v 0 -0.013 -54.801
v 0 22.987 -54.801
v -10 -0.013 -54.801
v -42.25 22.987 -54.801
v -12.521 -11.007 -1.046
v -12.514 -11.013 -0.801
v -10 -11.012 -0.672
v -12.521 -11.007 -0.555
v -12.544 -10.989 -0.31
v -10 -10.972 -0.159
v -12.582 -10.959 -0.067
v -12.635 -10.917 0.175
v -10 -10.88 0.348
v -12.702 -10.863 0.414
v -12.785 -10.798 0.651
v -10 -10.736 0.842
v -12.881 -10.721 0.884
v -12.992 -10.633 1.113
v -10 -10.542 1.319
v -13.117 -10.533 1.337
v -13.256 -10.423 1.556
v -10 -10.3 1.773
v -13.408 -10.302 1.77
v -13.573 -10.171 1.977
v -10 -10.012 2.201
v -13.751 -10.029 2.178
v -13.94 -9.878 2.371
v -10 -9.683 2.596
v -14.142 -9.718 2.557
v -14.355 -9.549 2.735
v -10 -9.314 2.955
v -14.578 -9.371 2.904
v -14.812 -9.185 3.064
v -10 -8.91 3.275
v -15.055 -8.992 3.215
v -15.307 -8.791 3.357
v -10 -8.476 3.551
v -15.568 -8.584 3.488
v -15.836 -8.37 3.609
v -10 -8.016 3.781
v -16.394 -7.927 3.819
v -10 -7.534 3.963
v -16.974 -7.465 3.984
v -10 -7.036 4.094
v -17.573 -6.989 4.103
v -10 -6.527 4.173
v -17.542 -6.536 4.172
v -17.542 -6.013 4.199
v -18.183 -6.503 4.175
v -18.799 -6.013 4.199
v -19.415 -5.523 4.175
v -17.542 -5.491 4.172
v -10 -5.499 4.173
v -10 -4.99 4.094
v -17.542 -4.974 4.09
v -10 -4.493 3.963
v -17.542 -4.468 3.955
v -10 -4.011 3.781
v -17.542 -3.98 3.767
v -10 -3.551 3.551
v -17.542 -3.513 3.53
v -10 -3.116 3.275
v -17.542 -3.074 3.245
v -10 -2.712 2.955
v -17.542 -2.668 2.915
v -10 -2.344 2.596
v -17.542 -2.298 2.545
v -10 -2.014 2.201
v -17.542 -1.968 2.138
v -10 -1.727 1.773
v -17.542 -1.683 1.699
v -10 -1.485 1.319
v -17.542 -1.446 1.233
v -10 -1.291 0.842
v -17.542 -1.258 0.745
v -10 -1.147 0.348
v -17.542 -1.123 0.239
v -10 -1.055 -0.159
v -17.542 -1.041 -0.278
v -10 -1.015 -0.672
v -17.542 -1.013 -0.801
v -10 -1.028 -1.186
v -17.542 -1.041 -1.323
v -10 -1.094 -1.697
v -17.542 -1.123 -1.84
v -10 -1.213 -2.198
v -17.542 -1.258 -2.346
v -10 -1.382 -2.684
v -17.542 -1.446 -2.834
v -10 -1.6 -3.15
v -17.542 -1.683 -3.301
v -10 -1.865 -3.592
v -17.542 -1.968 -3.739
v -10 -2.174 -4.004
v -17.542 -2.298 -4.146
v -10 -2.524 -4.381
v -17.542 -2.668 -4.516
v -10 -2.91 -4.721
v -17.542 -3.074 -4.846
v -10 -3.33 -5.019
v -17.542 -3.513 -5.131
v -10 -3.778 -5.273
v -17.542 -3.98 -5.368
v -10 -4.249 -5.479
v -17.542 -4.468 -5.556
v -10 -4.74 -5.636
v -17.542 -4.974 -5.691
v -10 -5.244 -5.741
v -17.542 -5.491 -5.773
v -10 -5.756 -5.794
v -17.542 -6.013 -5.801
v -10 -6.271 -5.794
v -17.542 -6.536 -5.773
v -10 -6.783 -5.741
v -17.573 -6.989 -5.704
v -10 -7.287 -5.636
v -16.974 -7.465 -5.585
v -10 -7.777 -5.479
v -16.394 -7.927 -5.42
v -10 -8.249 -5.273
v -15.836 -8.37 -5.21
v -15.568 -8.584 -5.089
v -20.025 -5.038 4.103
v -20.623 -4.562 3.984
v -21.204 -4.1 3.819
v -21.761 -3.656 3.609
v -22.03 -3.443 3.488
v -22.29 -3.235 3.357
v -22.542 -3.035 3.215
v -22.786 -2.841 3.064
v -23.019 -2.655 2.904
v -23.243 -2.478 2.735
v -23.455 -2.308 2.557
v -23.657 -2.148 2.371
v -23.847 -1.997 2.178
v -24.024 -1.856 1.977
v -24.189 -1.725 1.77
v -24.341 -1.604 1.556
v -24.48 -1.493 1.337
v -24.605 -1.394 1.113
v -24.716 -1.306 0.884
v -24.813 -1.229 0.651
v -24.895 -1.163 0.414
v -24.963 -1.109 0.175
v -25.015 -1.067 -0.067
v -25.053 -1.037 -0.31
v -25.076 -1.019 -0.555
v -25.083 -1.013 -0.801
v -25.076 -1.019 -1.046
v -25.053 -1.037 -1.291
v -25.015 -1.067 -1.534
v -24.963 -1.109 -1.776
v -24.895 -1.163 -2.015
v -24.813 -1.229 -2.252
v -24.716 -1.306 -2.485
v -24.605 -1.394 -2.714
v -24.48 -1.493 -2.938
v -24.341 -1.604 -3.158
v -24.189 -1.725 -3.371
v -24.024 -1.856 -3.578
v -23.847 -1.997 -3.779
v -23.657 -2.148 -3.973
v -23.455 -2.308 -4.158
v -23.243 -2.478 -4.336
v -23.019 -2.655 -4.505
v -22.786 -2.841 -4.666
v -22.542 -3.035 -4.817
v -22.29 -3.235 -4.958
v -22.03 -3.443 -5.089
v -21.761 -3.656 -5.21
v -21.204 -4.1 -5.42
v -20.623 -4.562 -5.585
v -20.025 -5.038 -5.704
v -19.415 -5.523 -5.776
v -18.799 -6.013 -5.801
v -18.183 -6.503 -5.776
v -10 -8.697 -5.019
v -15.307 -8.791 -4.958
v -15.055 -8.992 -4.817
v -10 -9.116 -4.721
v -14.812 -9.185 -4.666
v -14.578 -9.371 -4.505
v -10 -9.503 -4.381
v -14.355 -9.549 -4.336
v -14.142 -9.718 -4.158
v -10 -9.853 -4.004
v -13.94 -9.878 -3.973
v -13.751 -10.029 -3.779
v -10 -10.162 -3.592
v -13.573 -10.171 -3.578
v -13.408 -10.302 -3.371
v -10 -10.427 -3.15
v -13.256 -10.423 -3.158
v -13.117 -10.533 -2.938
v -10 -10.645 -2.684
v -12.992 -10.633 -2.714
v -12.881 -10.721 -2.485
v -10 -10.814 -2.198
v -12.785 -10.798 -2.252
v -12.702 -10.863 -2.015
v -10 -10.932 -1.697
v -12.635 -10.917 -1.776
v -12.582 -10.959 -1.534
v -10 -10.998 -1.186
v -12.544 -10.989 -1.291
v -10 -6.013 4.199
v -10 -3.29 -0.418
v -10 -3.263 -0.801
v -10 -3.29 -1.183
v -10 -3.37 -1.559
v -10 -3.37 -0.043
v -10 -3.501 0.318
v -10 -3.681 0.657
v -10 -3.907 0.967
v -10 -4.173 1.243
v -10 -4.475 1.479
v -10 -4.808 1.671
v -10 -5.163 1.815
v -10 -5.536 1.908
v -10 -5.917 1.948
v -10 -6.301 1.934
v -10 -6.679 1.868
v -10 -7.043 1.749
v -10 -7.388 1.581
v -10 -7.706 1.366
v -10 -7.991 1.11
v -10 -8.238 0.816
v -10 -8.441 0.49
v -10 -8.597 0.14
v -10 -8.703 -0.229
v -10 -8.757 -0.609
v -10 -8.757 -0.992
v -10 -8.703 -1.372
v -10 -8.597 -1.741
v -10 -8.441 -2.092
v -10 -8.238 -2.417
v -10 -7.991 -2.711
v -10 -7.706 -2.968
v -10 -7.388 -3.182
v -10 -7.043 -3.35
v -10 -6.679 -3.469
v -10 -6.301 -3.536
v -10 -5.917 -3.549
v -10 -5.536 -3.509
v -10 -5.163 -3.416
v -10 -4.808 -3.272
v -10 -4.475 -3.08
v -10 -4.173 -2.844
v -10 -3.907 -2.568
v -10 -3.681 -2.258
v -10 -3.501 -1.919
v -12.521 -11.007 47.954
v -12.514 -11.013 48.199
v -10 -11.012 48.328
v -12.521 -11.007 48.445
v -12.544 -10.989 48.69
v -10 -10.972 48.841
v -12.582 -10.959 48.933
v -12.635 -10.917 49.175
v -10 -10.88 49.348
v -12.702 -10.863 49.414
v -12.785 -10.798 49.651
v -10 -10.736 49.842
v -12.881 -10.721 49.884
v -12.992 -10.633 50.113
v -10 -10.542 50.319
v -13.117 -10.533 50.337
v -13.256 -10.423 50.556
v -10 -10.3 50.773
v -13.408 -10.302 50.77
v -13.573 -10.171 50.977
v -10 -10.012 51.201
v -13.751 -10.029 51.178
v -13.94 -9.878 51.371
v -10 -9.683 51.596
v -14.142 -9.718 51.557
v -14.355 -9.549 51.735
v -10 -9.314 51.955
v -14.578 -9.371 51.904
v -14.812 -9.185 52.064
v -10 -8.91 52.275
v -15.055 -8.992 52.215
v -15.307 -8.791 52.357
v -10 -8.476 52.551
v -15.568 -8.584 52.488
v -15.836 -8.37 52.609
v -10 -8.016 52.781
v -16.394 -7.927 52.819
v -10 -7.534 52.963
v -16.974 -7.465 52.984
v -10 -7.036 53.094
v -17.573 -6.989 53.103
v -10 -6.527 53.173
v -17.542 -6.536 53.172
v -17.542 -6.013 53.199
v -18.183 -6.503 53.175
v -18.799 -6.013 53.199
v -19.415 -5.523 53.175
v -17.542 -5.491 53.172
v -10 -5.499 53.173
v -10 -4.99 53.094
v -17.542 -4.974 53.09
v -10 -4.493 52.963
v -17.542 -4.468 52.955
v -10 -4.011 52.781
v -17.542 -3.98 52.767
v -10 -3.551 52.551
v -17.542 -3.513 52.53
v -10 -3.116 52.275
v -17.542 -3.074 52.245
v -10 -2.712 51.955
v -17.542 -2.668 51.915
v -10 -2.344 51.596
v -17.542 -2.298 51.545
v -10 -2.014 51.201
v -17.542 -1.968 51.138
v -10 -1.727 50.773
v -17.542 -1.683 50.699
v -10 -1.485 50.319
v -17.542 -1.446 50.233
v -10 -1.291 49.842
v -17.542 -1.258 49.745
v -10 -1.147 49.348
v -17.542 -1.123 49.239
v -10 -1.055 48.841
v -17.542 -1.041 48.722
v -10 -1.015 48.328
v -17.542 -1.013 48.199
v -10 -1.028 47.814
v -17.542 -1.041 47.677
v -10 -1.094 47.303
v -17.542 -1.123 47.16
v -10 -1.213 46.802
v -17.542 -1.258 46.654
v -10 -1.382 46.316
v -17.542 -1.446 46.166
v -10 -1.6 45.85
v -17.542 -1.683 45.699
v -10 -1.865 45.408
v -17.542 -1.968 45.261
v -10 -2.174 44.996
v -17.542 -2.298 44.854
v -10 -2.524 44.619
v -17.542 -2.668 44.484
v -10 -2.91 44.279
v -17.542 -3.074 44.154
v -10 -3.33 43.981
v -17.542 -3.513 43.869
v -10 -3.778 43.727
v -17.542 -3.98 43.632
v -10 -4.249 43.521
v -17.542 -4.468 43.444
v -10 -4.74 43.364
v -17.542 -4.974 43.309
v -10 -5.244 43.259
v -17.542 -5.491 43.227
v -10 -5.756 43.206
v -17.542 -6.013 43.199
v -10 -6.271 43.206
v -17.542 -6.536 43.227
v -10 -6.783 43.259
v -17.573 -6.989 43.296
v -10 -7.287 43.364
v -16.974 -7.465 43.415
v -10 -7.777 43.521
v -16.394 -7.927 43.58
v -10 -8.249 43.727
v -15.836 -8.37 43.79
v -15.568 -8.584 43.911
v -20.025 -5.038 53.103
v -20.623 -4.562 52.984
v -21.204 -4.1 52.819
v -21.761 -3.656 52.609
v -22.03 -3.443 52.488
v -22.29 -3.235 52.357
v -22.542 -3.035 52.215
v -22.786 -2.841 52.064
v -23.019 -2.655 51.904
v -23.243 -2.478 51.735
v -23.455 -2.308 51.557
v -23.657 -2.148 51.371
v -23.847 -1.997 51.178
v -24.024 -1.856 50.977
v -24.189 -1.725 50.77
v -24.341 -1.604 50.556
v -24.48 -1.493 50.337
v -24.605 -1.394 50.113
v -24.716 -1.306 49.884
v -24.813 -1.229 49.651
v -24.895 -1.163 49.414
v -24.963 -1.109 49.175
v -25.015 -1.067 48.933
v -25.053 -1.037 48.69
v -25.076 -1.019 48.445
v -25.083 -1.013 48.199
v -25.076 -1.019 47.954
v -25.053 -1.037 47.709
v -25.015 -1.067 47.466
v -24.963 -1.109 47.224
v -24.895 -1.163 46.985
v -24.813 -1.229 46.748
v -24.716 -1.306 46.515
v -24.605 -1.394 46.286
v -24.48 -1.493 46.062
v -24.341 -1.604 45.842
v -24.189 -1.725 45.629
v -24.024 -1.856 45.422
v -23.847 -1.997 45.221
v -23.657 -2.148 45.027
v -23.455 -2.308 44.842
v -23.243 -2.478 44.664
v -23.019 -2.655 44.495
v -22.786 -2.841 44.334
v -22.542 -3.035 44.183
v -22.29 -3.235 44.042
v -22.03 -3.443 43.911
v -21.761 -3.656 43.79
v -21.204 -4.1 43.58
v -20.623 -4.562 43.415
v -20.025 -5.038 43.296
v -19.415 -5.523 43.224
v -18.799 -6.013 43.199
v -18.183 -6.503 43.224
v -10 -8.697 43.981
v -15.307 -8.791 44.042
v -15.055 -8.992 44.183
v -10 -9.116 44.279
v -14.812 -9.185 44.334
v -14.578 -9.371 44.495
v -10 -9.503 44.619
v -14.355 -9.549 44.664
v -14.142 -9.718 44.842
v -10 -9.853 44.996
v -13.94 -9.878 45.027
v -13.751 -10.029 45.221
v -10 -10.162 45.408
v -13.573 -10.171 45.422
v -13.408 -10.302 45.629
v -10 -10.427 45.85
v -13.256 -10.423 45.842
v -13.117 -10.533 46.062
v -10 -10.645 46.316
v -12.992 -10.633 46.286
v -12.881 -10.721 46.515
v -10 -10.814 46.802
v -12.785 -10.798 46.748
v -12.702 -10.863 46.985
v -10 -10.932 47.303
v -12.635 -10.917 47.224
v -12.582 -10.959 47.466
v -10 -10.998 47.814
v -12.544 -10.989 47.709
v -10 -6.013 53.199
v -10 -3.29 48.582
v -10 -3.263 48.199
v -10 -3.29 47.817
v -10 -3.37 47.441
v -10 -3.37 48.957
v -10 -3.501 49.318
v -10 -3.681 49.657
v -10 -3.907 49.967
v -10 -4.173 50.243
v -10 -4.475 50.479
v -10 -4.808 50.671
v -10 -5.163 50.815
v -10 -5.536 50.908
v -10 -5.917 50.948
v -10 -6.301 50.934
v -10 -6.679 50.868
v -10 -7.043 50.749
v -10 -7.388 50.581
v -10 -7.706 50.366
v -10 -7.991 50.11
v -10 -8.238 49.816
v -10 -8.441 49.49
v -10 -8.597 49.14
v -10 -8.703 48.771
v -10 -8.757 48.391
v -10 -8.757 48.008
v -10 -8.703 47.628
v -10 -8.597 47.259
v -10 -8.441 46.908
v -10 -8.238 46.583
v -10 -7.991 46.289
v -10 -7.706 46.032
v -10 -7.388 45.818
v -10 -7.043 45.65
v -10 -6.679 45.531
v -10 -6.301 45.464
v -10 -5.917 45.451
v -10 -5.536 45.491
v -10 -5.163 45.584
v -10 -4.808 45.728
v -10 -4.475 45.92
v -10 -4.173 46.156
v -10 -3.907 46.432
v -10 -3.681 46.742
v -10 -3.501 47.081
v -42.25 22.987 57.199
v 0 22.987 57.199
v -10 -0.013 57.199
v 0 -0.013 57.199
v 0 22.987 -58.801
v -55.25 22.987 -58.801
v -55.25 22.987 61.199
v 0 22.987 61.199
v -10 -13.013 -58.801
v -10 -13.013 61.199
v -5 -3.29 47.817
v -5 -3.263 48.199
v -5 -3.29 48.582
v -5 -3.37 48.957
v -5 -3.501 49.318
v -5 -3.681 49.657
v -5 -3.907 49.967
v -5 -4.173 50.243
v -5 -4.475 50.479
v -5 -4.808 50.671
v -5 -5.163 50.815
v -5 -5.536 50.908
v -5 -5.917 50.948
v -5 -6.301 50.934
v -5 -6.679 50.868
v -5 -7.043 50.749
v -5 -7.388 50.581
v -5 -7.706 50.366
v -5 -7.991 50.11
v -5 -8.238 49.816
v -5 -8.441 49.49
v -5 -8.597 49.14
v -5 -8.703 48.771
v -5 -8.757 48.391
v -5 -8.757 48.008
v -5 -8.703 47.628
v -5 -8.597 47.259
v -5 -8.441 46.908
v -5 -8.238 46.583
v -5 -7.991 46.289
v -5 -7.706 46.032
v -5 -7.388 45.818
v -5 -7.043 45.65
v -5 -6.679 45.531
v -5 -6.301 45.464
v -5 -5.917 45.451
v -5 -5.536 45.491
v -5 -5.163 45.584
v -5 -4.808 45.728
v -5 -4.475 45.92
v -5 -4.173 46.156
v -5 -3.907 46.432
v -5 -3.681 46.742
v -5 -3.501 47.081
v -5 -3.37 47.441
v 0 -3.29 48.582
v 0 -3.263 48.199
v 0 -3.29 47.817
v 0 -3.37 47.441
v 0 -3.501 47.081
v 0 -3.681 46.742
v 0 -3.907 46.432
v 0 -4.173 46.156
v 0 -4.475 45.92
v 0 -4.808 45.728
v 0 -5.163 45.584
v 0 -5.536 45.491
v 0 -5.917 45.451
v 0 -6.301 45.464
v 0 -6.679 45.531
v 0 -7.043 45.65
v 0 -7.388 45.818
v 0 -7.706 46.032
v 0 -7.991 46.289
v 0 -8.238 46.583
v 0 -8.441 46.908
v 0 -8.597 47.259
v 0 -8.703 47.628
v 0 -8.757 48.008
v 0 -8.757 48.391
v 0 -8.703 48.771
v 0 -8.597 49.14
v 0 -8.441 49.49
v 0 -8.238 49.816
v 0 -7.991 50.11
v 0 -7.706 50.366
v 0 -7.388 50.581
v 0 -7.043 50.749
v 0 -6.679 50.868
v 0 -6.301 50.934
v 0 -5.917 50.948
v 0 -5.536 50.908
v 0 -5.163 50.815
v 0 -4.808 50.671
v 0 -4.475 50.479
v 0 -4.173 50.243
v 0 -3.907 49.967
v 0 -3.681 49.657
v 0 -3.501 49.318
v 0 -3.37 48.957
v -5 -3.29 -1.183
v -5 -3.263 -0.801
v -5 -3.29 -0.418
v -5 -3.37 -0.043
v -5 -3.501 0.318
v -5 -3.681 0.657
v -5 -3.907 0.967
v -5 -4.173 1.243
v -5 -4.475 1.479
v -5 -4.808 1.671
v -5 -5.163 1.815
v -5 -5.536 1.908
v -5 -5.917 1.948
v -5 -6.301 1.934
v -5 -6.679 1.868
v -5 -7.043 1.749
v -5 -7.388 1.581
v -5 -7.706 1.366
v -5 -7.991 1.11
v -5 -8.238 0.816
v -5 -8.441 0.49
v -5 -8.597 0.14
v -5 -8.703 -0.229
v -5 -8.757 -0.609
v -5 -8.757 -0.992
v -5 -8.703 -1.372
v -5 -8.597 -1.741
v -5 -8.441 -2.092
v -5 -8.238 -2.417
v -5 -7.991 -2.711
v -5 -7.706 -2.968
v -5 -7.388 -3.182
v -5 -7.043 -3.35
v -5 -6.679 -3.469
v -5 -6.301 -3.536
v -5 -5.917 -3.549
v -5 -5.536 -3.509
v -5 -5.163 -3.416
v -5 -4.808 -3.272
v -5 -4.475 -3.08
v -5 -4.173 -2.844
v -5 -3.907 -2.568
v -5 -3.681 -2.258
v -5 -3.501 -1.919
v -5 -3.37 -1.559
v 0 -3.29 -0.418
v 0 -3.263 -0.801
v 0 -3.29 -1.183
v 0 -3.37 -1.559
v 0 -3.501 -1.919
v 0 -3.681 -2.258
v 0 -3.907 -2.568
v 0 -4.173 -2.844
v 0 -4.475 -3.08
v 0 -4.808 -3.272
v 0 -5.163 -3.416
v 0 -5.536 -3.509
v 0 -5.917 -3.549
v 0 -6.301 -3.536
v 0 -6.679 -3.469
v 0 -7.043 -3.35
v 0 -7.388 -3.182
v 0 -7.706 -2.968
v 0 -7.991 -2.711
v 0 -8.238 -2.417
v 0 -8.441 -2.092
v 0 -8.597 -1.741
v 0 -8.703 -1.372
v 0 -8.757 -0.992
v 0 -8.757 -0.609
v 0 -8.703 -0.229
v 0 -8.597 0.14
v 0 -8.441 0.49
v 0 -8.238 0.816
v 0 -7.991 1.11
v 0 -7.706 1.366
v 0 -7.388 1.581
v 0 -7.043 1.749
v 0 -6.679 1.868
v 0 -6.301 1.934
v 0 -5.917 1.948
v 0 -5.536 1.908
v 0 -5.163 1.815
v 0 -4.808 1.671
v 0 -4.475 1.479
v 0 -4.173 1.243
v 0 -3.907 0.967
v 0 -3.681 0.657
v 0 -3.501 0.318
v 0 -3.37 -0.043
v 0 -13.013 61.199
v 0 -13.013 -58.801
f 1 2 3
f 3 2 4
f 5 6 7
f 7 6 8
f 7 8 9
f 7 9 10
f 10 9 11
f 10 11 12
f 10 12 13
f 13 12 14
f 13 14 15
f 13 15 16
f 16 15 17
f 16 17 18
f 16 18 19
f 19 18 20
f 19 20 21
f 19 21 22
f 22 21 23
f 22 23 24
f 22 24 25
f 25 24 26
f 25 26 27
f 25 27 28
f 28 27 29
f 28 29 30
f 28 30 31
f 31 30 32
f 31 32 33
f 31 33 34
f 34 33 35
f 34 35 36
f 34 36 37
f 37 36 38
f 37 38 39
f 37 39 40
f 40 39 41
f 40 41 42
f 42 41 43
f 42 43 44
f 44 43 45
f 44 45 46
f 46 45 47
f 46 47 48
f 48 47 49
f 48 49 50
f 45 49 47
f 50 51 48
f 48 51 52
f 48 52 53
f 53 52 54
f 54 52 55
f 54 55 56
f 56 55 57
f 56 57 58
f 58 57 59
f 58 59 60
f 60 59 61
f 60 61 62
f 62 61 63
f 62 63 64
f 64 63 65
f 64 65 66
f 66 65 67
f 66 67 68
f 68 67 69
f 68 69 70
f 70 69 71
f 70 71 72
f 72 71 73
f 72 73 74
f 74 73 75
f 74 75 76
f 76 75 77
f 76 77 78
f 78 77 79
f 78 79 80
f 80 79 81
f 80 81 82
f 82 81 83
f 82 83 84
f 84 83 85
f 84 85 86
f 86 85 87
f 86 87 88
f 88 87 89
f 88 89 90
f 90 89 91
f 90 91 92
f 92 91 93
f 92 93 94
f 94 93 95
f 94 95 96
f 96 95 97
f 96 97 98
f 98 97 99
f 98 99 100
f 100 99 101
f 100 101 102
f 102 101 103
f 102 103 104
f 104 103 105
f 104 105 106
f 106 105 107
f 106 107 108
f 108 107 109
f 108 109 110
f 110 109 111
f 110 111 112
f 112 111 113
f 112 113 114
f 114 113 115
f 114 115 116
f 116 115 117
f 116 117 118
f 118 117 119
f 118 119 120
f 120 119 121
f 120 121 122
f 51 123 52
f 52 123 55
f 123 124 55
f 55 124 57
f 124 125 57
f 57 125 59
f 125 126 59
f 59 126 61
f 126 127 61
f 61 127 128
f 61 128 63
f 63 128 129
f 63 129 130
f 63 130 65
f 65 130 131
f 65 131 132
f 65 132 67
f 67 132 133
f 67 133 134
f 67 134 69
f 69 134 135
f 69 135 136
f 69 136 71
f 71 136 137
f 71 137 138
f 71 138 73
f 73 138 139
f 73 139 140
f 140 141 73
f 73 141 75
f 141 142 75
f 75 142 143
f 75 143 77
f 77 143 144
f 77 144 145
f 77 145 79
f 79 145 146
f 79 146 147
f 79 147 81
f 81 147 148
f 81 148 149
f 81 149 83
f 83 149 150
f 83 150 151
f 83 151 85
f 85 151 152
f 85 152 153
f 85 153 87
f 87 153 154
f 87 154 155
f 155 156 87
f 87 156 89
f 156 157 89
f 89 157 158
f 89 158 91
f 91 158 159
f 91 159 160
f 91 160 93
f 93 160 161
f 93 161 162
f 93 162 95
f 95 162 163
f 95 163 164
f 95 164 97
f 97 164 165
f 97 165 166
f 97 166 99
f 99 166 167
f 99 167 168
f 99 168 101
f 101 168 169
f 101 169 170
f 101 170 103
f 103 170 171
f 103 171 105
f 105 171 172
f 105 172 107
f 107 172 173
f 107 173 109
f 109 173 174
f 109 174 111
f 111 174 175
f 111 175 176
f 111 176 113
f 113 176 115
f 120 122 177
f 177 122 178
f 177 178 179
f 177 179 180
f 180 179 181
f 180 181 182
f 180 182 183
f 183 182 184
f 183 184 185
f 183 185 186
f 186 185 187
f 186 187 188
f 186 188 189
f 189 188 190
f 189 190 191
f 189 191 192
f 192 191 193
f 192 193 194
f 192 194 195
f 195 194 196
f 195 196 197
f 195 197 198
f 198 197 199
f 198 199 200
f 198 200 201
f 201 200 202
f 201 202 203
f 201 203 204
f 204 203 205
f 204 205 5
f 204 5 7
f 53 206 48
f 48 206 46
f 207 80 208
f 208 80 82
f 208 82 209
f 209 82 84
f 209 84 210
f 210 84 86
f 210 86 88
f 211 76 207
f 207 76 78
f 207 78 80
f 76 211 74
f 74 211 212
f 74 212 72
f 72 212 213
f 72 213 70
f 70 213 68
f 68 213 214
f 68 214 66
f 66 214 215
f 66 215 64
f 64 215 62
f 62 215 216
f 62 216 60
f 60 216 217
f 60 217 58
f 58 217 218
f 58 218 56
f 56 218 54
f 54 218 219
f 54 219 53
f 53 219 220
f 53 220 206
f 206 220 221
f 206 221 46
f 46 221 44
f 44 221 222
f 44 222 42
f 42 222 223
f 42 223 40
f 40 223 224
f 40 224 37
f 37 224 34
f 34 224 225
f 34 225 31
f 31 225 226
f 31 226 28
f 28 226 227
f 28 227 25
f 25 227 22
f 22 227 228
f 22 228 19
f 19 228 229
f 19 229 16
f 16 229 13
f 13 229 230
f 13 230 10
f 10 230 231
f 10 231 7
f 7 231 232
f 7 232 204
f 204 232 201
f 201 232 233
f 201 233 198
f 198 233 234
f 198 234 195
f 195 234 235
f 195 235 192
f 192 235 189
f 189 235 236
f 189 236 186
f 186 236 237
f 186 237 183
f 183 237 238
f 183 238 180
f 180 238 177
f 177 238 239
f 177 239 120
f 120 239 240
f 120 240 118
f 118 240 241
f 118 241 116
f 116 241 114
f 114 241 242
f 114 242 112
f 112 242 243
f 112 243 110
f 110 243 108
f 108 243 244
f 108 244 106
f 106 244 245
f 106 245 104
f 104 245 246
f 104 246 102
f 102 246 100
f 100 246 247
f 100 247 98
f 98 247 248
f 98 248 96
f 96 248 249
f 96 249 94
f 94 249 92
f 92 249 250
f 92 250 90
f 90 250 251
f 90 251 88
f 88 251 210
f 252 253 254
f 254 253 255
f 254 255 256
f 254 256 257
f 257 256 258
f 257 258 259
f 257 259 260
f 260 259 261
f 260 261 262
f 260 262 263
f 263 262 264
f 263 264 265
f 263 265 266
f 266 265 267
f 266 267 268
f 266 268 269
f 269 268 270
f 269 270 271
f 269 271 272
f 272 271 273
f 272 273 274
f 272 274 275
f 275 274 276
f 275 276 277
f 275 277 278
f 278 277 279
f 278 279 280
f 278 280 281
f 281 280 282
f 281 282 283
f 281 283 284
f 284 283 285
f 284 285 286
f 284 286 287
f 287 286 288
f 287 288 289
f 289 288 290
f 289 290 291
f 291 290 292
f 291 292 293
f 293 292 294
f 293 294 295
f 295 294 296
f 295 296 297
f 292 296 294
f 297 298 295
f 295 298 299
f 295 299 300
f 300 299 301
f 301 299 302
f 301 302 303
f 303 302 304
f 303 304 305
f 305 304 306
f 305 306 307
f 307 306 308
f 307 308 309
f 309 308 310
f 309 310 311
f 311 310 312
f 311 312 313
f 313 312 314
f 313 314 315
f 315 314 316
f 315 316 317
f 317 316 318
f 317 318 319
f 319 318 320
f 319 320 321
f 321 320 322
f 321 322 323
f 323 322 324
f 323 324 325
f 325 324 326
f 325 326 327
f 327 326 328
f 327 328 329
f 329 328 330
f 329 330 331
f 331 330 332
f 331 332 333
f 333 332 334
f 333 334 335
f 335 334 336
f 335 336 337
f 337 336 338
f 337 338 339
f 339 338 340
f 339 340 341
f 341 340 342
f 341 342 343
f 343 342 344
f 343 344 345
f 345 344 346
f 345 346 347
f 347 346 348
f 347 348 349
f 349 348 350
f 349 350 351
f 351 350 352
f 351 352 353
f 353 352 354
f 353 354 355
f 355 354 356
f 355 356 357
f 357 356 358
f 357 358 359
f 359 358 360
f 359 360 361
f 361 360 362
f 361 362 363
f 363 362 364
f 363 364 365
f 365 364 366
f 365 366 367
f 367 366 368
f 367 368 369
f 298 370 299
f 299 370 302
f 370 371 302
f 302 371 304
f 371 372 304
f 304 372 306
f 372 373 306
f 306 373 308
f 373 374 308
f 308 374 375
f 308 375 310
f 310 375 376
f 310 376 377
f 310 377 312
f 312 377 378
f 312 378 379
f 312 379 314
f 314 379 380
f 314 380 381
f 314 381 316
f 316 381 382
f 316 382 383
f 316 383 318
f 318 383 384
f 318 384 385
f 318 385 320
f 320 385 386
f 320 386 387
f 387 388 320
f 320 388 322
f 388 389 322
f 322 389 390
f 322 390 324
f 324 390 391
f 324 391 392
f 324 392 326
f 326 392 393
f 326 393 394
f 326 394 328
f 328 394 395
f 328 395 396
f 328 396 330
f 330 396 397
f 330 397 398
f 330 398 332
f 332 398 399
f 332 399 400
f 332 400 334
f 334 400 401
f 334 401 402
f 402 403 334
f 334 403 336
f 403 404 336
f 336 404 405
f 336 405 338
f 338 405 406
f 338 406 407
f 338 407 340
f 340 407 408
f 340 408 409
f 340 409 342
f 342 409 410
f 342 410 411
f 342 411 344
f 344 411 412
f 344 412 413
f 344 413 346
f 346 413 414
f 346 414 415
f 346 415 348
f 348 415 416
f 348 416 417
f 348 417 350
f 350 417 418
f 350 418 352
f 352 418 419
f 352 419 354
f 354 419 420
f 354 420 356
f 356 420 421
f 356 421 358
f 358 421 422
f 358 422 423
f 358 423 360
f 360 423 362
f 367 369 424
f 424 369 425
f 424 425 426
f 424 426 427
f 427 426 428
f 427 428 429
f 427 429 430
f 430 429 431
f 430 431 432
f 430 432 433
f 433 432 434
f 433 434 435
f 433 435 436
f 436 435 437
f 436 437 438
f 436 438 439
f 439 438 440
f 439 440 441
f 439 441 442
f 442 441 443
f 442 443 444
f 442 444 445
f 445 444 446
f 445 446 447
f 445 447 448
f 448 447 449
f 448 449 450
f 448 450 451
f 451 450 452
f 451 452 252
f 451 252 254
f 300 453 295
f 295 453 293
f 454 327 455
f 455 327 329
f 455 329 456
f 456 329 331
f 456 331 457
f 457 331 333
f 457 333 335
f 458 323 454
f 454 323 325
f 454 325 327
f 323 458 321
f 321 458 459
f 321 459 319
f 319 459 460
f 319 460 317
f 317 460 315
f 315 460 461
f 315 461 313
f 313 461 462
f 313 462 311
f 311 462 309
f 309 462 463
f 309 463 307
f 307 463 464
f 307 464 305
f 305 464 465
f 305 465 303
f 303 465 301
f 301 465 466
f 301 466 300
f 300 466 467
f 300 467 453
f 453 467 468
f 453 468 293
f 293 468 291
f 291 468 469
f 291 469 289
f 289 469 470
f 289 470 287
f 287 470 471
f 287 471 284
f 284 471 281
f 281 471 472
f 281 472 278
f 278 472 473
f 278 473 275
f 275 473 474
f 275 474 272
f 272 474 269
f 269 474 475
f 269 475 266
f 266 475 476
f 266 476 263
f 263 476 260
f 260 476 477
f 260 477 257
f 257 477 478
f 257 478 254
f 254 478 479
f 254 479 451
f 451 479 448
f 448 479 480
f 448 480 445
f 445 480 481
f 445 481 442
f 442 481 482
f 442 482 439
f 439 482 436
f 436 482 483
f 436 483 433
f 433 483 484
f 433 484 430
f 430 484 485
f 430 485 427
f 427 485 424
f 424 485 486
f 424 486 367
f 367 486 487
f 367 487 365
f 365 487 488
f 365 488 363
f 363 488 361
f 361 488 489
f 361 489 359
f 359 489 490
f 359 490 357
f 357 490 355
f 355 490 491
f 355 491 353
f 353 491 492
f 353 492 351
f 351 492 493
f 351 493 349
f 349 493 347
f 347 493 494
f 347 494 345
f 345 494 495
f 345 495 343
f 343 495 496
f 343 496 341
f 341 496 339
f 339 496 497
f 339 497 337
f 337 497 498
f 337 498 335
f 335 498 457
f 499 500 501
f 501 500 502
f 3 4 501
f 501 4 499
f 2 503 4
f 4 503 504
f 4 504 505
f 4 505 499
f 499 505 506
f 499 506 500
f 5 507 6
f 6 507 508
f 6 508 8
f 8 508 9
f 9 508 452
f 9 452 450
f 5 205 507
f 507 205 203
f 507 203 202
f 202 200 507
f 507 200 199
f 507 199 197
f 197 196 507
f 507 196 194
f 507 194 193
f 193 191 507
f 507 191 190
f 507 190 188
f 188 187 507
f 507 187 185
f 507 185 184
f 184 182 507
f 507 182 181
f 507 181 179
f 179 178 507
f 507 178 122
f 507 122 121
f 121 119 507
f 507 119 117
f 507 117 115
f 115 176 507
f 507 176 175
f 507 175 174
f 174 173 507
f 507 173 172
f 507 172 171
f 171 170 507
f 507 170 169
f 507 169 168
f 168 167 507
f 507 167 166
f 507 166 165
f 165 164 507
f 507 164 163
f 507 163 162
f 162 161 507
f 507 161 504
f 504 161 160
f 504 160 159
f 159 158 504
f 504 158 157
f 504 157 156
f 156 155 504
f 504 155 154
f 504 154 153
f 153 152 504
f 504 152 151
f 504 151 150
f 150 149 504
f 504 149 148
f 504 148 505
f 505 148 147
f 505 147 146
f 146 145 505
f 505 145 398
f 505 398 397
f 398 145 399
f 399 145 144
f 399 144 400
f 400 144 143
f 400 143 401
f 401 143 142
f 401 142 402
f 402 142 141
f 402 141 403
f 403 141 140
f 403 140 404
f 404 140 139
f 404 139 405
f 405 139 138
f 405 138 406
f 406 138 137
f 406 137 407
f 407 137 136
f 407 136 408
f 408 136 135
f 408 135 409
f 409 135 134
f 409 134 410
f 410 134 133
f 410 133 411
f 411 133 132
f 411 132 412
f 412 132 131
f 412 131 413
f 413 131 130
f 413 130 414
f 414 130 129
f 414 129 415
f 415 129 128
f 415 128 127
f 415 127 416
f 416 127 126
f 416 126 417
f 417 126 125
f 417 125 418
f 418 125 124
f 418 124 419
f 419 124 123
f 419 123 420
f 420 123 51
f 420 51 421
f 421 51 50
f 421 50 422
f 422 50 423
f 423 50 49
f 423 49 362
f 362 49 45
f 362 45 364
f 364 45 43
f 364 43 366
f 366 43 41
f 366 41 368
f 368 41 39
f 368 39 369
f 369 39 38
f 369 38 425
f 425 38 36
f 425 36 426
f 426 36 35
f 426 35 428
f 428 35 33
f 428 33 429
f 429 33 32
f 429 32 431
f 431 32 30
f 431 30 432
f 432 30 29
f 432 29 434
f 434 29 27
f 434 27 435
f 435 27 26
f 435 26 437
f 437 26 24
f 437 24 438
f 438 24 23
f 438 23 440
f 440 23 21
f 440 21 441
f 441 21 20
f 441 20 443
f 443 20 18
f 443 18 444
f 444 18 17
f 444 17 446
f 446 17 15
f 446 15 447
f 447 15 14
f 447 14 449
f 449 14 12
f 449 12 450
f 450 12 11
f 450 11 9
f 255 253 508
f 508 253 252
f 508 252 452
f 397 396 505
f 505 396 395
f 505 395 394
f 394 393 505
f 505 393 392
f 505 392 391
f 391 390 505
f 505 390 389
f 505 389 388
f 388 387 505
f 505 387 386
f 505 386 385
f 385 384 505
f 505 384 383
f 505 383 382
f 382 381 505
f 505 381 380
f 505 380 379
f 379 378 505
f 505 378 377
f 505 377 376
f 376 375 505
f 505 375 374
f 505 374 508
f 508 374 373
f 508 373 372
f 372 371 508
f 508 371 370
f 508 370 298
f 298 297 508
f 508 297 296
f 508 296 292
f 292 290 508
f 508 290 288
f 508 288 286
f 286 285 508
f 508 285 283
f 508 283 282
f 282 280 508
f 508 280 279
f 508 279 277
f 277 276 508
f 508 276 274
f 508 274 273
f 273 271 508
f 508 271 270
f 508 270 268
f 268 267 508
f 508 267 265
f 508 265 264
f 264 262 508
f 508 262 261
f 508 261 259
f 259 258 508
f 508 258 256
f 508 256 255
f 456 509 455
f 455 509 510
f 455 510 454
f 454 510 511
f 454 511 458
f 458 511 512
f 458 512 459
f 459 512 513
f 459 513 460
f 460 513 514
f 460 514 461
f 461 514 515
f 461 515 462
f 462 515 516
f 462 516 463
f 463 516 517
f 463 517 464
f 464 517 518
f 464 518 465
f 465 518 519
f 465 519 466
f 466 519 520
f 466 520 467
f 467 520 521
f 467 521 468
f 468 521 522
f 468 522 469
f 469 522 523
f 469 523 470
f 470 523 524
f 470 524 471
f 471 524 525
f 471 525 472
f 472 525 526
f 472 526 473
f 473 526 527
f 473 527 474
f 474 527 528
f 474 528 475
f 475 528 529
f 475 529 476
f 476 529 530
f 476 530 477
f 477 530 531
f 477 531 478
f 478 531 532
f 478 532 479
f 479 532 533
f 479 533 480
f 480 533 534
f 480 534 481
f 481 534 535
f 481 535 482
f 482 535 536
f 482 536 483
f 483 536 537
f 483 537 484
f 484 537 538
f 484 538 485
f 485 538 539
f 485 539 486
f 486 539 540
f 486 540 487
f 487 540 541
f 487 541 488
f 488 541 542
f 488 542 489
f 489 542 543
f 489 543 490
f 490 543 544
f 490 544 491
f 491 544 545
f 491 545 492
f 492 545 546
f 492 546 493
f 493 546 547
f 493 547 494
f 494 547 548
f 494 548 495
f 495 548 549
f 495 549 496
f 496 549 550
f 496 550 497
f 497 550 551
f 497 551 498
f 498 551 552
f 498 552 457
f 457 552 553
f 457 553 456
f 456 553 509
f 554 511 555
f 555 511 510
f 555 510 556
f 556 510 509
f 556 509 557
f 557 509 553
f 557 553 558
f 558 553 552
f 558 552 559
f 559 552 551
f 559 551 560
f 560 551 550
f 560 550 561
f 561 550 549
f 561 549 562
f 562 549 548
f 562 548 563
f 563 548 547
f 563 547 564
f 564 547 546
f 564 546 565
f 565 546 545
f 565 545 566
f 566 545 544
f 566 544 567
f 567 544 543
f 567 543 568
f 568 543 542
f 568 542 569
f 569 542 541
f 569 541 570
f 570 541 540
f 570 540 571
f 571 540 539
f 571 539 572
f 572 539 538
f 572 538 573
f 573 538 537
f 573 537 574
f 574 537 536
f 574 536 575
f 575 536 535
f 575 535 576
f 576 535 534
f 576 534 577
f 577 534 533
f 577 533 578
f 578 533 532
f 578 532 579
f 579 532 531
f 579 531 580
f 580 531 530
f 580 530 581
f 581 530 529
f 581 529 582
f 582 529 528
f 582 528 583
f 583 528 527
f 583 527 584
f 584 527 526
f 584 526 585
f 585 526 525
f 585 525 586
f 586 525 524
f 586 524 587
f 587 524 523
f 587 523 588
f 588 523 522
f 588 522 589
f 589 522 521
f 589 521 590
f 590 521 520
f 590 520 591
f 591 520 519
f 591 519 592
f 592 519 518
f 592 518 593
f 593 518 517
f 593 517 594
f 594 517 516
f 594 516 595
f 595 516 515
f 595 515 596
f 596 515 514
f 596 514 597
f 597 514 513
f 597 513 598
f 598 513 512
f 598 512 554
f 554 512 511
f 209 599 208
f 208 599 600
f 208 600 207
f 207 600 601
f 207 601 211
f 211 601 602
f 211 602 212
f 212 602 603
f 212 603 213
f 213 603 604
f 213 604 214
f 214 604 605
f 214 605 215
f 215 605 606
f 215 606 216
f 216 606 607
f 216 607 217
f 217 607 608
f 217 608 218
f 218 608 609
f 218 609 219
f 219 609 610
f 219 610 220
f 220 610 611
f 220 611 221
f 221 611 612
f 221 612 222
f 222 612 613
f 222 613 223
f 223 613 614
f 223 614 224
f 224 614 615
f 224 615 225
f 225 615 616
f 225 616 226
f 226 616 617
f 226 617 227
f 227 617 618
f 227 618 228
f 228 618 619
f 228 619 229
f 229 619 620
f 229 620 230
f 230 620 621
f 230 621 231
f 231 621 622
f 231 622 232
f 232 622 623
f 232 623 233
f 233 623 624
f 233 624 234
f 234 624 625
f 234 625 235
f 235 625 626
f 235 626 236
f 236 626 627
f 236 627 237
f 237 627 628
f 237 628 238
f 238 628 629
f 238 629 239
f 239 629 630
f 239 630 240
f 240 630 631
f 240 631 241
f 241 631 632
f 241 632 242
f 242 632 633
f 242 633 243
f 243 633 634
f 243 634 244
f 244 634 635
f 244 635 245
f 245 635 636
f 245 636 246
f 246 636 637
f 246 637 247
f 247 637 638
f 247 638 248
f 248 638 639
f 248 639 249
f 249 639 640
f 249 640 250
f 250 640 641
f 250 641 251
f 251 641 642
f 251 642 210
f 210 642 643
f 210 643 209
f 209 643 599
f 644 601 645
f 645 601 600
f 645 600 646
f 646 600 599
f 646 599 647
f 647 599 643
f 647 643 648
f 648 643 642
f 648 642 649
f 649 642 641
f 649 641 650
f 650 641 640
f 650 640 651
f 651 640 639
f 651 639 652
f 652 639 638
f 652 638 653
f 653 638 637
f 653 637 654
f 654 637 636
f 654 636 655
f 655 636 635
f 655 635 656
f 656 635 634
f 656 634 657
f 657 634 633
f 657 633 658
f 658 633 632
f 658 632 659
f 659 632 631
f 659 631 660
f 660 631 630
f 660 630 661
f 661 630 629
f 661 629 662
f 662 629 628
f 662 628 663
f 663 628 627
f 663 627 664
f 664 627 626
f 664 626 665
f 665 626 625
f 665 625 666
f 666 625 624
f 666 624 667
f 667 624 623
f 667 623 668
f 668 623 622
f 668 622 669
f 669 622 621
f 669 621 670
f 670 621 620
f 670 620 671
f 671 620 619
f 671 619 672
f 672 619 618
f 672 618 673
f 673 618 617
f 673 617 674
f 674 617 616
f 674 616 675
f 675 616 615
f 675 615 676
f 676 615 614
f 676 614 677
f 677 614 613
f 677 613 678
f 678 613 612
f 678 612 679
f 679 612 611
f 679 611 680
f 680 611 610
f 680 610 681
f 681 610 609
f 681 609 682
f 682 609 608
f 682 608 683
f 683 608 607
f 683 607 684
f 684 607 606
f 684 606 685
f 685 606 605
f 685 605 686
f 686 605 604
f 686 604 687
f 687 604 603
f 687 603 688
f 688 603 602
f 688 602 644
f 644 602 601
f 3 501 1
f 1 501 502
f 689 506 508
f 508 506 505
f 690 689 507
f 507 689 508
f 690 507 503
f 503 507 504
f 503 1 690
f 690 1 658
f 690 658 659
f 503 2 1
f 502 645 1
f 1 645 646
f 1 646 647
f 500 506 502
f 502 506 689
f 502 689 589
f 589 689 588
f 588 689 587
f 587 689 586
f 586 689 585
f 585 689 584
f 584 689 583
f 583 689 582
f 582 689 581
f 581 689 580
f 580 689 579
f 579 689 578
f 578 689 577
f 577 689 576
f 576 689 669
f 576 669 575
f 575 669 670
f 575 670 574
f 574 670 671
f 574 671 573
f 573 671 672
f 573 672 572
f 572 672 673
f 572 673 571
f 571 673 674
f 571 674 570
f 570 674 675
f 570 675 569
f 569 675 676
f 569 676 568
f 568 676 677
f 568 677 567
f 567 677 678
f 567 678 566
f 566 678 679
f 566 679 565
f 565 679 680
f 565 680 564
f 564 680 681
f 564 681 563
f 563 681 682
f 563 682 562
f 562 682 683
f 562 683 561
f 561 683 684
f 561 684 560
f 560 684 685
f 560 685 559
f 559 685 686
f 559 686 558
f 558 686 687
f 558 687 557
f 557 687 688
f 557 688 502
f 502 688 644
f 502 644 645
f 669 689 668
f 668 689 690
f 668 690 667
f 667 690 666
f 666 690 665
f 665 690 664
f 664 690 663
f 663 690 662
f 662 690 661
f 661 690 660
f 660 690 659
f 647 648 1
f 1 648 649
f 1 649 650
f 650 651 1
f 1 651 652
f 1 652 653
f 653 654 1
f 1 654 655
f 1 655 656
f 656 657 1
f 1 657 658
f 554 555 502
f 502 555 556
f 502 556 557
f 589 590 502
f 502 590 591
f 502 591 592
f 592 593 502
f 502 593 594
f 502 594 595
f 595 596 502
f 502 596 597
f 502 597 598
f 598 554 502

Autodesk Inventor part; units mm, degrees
ref_plane "YZ Plane" through (0, 0, 0) normal (1, 0, 0) x (0, 1, 0)
ref_plane "XZ Plane" through (0, 0, 0) normal (0, 1, 0) x (-1, 0, 0)
ref_plane "XY Plane" through (0, 0, 0) normal (0, 0, 1) x (1, 0, 0)
sketch "Эскиз1" plane through (0, 0, 0) normal (1, 0, 0) x (0, 1, 0)
  circle A0 centre (-6.0133, 48.1994) radius 2.75 projected
  circle A1 centre (-6.0133, -0.8006) radius 2.75 projected
  line L0 (-13.0133, 61.1994) -> (-13.0133, -18.8006) projected
  line L1 (38.9867, 61.1994) -> (-13.0133, 61.1994) projected
  line L2 (33.9867, -18.8006) -> (-13.0133, -18.8006) projected
  line L3 (-0.0133, 61.1994) -> (-0.0133, -18.8006)
  point P0 (0, 0)
  dimension "d0" = 13
extrude "Выдавливание1" add sketch "Эскиз1" against normal blind 10
sketch "Эскиз2" plane through (0, -13.0133, 61.1994) normal (0, 0, 1) x (1, 0, 0)
  line L0 (-55.25, 38) -> (-55.25, 36) projected
  line L1 (-10, 13) -> (-10, 0) projected
  line L2 (-10, 0) -> (-55.25, 36)
  line L3 (0, 13) -> (-10, 13) projected
  line L4 (-10, 13) -> (-42.25, 36)
  line L5 (-55.25, 36) -> (-42.25, 36)
  point P0 (0, 13.0133)
  dimension "d3" = 13
  dimension "d4" = 13
extrude "Выдавливание2" add sketch "Эскиз2" against normal up to surface (80 mm away)
sketch "Эскиз3" plane through (0, -13.0133, 61.1994) normal (0, 0, 1) x (1, 0, 0)
  line L0 (0, 13) -> (0, 0) projected
  line L1 (0, 13) -> (0, 36)
  line L2 (-10, 13) -> (-42.25, 36) projected
  line L3 (0, 36) -> (-42.25, 36)
  line L4 (0, 13) -> (-10, 13) projected
  point P0 (0, 13.0133)
extrude "Выдавливание3" add sketch "Эскиз3" against normal blind 4
sketch "Эскиз4" plane through (-10, -6.0133, 48.1994) normal (1, 0, 0) x (0, 0, -1)
  circle A0 centre (49, 0) radius 2.75 projected
  circle A1 centre (0, 0) radius 2.75 projected
  point P0 (48.1994, 6.0133)
extrude "Выдавливание4" cut sketch "Эскиз4" against normal through all
ref_plane "РабПлоскость1" through (-10, -13.0133, 61.1994) normal (1, 0, 0) x (0, 0, 1)
sketch "Эскиз5" plane through (-10, -13.0133, 61.1994) normal (1, 0, 0) x (0, 0, 1)
  circle A0 centre (-13, -7) radius 2.75 projected
  circle A1 centre (-62, -7) radius 2.75 projected
  circle A2 centre (-13, -7) radius 2.75 projected
  circle A3 centre (-13, -7) radius 5
  circle A4 centre (-62, -7) radius 5
  point P0 (-61.1994, -13.0133)
  dimension "d12" = 10
  dimension "d13" = 10
extrude "Выдавливание5" cut sketch "Эскиз5" against normal through all contours A0 | A1 | A3 | A4
move faces "Перенос2" translate (0, 0, -40) faces at (-35.8333, 10.9867, -18.8006)
sketch "Эскиз6" plane through (0, -13.0133, -58.8006) normal (0, 0, -1) x (-1, 0, 0)
  line L0 (42.25, 36) -> (10, 13) projected
  line L1 (42.25, 36) -> (0, 36) projected
  line L2 (0, 36) -> (0, 13) projected
  line L3 (10, 13) -> (0, 13) projected
  point P0 (0, 13.0133)
extrude "Выдавливание6" add sketch "Эскиз6" against normal blind 4
equation "\"d4\" = d3"
properties part number "000.001.007 - Накладка"
